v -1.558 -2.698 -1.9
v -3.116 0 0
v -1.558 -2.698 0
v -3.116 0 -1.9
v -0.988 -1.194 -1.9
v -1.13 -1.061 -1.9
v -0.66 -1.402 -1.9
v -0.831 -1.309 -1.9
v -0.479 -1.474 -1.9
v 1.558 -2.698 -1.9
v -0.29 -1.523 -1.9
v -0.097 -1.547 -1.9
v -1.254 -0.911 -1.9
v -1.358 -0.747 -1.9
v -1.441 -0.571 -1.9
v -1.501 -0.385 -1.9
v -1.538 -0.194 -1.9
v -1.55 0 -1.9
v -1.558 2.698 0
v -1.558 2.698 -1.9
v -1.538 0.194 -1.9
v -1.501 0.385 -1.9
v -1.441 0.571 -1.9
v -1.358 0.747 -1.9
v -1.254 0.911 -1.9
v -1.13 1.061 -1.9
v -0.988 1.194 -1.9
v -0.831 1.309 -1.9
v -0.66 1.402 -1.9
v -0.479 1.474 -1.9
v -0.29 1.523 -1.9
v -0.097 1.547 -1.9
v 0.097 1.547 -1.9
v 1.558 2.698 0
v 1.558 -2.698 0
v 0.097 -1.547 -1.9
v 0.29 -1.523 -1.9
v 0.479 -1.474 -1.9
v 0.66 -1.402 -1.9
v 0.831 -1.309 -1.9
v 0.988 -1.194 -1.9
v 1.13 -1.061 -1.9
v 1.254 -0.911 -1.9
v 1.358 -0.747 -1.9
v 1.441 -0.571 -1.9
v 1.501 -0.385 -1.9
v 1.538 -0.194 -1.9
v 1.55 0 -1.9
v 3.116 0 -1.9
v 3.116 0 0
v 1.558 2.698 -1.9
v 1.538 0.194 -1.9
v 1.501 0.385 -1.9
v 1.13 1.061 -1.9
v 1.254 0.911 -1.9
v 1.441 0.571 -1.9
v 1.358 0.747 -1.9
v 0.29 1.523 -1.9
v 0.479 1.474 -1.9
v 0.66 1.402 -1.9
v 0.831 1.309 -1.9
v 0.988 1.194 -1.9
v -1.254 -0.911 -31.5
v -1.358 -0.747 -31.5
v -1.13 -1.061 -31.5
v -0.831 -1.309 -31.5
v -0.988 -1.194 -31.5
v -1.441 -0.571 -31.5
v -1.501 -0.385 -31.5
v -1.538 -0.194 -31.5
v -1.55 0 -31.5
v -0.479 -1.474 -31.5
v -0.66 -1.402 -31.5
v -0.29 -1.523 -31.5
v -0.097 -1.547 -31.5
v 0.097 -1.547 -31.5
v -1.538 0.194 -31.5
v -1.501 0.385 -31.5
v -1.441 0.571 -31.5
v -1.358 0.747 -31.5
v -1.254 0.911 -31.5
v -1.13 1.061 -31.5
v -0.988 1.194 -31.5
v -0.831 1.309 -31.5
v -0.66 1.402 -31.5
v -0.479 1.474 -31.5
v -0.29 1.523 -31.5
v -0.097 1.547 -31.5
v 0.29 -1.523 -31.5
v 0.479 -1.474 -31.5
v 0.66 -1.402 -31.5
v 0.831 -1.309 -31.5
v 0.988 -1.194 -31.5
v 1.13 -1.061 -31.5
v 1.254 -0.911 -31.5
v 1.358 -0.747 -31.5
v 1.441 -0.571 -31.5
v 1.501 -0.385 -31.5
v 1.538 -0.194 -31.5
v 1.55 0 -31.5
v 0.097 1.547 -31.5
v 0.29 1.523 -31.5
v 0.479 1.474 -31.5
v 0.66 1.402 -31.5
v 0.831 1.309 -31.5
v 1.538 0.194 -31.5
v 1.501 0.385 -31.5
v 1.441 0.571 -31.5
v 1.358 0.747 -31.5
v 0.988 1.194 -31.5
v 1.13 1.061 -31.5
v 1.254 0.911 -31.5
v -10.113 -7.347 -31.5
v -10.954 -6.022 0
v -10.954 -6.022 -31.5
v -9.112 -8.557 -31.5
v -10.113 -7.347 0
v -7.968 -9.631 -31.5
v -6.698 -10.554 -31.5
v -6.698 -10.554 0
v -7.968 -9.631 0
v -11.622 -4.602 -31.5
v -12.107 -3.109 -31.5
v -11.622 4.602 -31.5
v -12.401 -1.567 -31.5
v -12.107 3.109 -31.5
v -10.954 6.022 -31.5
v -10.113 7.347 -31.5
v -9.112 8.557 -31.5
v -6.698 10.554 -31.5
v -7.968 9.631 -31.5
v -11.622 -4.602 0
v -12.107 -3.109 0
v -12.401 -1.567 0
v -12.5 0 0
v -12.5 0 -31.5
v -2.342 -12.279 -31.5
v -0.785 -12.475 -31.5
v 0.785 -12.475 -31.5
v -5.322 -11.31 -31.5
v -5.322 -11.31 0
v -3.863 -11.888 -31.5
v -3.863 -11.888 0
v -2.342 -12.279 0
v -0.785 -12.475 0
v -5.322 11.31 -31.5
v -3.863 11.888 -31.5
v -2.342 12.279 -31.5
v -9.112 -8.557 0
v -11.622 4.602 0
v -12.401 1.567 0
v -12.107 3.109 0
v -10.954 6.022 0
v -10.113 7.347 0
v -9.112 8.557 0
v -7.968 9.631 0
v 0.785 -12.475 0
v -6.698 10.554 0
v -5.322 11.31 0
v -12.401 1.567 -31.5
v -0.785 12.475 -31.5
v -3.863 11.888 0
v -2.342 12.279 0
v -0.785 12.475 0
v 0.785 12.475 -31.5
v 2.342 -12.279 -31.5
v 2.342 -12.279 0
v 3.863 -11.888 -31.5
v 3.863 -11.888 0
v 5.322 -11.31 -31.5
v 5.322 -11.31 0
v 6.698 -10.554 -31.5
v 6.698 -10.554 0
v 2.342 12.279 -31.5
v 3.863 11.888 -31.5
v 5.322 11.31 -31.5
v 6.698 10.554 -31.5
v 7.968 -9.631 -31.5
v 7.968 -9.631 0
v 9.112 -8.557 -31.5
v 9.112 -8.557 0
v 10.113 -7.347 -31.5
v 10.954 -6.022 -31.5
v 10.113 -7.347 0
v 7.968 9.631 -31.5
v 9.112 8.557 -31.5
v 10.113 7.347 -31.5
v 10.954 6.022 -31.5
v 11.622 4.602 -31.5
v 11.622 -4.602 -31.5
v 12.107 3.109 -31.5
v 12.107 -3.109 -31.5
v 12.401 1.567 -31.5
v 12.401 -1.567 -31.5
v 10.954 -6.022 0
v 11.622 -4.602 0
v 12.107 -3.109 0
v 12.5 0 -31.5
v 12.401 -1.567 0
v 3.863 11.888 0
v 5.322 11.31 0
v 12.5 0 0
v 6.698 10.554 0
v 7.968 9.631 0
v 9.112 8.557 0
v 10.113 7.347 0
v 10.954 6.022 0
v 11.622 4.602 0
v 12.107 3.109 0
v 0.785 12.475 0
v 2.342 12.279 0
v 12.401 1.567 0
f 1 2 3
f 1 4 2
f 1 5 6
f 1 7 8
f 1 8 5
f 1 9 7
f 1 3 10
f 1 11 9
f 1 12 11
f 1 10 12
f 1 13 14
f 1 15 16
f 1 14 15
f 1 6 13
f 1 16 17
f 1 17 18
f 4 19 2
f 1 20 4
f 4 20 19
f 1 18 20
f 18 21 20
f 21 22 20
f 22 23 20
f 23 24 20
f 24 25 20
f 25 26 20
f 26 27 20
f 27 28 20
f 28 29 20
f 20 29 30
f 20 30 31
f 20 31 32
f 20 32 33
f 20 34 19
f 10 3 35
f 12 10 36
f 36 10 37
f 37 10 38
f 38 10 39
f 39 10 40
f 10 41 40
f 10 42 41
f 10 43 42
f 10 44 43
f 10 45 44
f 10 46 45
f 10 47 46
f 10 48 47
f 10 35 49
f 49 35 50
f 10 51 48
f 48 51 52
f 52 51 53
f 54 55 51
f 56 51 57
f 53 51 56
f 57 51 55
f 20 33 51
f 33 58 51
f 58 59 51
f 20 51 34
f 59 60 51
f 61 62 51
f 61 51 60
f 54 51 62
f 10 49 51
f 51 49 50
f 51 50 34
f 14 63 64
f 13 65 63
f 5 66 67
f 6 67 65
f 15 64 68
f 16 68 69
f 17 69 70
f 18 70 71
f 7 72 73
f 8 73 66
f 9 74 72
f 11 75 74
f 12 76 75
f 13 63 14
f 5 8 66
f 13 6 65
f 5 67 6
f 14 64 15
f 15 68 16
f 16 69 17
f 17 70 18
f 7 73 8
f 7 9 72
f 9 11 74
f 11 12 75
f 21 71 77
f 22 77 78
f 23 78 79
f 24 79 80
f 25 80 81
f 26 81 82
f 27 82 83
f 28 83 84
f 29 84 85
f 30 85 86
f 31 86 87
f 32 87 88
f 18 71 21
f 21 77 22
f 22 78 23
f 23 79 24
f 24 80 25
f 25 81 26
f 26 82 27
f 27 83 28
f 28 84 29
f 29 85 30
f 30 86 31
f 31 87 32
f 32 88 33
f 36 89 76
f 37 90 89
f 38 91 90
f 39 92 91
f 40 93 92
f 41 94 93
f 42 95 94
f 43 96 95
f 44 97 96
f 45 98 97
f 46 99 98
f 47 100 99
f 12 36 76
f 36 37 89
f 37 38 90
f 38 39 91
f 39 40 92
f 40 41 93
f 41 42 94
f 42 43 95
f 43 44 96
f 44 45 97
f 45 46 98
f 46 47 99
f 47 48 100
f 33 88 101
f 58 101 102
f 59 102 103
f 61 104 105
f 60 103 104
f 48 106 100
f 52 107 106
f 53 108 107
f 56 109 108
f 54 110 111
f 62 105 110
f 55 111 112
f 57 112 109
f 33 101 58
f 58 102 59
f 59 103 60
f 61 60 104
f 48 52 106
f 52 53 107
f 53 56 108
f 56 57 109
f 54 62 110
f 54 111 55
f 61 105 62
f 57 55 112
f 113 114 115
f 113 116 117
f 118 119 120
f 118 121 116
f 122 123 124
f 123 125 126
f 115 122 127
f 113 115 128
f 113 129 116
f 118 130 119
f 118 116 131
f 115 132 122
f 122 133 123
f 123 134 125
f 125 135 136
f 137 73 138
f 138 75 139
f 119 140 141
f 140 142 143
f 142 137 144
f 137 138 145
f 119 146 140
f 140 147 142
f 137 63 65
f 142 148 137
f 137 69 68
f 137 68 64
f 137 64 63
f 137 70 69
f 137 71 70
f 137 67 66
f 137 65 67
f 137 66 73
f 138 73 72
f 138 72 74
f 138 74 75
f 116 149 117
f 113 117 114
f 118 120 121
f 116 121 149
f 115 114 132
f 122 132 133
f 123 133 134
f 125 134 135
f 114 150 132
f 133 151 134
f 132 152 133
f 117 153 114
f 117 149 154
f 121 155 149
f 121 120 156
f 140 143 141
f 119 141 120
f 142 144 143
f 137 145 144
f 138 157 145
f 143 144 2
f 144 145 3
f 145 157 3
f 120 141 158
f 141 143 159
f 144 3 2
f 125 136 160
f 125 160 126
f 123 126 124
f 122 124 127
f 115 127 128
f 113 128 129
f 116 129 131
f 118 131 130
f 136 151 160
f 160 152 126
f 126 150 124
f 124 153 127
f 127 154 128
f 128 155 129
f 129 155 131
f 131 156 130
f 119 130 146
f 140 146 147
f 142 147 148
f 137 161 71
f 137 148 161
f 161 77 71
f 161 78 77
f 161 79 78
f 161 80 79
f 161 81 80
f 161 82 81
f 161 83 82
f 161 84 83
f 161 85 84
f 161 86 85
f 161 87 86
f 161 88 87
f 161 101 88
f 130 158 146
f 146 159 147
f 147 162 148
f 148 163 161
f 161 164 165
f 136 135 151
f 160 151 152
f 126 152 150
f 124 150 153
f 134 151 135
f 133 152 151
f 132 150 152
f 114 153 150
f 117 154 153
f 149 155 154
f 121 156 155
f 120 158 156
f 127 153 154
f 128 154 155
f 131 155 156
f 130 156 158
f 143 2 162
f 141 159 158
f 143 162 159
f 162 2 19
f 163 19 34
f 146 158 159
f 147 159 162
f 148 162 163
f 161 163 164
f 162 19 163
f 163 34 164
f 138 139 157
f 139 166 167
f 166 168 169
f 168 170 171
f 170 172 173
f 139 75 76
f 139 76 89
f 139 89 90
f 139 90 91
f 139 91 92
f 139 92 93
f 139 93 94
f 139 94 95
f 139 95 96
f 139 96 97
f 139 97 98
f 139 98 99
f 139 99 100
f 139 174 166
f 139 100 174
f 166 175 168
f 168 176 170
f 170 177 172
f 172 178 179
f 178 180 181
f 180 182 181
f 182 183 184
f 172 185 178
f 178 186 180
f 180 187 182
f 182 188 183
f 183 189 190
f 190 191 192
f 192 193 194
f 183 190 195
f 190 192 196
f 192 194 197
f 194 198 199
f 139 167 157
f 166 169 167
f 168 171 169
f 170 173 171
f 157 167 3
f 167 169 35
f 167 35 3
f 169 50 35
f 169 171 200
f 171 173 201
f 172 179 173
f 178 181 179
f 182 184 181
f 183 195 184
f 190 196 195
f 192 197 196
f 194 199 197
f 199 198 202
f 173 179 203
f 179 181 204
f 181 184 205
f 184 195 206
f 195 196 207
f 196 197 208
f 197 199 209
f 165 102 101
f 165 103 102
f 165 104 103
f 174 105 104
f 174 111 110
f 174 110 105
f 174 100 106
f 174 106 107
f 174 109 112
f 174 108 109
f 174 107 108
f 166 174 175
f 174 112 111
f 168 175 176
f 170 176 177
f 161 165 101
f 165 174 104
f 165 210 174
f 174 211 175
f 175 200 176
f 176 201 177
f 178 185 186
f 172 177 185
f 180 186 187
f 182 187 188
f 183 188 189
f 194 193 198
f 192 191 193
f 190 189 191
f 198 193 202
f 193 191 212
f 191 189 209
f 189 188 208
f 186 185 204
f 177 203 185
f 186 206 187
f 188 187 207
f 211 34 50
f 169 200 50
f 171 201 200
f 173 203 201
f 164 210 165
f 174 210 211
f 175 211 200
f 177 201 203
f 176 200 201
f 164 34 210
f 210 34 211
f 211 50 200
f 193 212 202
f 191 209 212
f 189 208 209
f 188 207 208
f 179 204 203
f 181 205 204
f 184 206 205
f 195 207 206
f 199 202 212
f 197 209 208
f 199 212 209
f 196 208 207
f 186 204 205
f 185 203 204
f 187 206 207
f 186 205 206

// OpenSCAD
$fn = 50;


difference() {
	union() {
		translate(v = [0, 0, -31.5000000000]) {
			cylinder(h = 31.5000000000, r = 12.5000000000);
		}
	}
	union() {
		translate(v = [0, 0, 0]) {
			rotate(a = [0, 0, 0]) {
				difference() {
					union() {
						translate(v = [0, 0, -1.9000000000]) {
							linear_extrude(height = 1.9000000000) {
								polygon(points = [[3.1158000000, 0.0000000000], [1.5579000000, 2.6983619531], [-1.5579000000, 2.6983619531], [-3.1158000000, 0.0000000000], [-1.5579000000, -2.6983619531], [1.5579000000, -2.6983619531]]);
							}
						}
					}
					union();
				}
			}
		}
		#translate(v = [0, 0, -100.0000000000]) {
			cylinder(h = 200, r = 1.5500000000);
		}
	}
}
